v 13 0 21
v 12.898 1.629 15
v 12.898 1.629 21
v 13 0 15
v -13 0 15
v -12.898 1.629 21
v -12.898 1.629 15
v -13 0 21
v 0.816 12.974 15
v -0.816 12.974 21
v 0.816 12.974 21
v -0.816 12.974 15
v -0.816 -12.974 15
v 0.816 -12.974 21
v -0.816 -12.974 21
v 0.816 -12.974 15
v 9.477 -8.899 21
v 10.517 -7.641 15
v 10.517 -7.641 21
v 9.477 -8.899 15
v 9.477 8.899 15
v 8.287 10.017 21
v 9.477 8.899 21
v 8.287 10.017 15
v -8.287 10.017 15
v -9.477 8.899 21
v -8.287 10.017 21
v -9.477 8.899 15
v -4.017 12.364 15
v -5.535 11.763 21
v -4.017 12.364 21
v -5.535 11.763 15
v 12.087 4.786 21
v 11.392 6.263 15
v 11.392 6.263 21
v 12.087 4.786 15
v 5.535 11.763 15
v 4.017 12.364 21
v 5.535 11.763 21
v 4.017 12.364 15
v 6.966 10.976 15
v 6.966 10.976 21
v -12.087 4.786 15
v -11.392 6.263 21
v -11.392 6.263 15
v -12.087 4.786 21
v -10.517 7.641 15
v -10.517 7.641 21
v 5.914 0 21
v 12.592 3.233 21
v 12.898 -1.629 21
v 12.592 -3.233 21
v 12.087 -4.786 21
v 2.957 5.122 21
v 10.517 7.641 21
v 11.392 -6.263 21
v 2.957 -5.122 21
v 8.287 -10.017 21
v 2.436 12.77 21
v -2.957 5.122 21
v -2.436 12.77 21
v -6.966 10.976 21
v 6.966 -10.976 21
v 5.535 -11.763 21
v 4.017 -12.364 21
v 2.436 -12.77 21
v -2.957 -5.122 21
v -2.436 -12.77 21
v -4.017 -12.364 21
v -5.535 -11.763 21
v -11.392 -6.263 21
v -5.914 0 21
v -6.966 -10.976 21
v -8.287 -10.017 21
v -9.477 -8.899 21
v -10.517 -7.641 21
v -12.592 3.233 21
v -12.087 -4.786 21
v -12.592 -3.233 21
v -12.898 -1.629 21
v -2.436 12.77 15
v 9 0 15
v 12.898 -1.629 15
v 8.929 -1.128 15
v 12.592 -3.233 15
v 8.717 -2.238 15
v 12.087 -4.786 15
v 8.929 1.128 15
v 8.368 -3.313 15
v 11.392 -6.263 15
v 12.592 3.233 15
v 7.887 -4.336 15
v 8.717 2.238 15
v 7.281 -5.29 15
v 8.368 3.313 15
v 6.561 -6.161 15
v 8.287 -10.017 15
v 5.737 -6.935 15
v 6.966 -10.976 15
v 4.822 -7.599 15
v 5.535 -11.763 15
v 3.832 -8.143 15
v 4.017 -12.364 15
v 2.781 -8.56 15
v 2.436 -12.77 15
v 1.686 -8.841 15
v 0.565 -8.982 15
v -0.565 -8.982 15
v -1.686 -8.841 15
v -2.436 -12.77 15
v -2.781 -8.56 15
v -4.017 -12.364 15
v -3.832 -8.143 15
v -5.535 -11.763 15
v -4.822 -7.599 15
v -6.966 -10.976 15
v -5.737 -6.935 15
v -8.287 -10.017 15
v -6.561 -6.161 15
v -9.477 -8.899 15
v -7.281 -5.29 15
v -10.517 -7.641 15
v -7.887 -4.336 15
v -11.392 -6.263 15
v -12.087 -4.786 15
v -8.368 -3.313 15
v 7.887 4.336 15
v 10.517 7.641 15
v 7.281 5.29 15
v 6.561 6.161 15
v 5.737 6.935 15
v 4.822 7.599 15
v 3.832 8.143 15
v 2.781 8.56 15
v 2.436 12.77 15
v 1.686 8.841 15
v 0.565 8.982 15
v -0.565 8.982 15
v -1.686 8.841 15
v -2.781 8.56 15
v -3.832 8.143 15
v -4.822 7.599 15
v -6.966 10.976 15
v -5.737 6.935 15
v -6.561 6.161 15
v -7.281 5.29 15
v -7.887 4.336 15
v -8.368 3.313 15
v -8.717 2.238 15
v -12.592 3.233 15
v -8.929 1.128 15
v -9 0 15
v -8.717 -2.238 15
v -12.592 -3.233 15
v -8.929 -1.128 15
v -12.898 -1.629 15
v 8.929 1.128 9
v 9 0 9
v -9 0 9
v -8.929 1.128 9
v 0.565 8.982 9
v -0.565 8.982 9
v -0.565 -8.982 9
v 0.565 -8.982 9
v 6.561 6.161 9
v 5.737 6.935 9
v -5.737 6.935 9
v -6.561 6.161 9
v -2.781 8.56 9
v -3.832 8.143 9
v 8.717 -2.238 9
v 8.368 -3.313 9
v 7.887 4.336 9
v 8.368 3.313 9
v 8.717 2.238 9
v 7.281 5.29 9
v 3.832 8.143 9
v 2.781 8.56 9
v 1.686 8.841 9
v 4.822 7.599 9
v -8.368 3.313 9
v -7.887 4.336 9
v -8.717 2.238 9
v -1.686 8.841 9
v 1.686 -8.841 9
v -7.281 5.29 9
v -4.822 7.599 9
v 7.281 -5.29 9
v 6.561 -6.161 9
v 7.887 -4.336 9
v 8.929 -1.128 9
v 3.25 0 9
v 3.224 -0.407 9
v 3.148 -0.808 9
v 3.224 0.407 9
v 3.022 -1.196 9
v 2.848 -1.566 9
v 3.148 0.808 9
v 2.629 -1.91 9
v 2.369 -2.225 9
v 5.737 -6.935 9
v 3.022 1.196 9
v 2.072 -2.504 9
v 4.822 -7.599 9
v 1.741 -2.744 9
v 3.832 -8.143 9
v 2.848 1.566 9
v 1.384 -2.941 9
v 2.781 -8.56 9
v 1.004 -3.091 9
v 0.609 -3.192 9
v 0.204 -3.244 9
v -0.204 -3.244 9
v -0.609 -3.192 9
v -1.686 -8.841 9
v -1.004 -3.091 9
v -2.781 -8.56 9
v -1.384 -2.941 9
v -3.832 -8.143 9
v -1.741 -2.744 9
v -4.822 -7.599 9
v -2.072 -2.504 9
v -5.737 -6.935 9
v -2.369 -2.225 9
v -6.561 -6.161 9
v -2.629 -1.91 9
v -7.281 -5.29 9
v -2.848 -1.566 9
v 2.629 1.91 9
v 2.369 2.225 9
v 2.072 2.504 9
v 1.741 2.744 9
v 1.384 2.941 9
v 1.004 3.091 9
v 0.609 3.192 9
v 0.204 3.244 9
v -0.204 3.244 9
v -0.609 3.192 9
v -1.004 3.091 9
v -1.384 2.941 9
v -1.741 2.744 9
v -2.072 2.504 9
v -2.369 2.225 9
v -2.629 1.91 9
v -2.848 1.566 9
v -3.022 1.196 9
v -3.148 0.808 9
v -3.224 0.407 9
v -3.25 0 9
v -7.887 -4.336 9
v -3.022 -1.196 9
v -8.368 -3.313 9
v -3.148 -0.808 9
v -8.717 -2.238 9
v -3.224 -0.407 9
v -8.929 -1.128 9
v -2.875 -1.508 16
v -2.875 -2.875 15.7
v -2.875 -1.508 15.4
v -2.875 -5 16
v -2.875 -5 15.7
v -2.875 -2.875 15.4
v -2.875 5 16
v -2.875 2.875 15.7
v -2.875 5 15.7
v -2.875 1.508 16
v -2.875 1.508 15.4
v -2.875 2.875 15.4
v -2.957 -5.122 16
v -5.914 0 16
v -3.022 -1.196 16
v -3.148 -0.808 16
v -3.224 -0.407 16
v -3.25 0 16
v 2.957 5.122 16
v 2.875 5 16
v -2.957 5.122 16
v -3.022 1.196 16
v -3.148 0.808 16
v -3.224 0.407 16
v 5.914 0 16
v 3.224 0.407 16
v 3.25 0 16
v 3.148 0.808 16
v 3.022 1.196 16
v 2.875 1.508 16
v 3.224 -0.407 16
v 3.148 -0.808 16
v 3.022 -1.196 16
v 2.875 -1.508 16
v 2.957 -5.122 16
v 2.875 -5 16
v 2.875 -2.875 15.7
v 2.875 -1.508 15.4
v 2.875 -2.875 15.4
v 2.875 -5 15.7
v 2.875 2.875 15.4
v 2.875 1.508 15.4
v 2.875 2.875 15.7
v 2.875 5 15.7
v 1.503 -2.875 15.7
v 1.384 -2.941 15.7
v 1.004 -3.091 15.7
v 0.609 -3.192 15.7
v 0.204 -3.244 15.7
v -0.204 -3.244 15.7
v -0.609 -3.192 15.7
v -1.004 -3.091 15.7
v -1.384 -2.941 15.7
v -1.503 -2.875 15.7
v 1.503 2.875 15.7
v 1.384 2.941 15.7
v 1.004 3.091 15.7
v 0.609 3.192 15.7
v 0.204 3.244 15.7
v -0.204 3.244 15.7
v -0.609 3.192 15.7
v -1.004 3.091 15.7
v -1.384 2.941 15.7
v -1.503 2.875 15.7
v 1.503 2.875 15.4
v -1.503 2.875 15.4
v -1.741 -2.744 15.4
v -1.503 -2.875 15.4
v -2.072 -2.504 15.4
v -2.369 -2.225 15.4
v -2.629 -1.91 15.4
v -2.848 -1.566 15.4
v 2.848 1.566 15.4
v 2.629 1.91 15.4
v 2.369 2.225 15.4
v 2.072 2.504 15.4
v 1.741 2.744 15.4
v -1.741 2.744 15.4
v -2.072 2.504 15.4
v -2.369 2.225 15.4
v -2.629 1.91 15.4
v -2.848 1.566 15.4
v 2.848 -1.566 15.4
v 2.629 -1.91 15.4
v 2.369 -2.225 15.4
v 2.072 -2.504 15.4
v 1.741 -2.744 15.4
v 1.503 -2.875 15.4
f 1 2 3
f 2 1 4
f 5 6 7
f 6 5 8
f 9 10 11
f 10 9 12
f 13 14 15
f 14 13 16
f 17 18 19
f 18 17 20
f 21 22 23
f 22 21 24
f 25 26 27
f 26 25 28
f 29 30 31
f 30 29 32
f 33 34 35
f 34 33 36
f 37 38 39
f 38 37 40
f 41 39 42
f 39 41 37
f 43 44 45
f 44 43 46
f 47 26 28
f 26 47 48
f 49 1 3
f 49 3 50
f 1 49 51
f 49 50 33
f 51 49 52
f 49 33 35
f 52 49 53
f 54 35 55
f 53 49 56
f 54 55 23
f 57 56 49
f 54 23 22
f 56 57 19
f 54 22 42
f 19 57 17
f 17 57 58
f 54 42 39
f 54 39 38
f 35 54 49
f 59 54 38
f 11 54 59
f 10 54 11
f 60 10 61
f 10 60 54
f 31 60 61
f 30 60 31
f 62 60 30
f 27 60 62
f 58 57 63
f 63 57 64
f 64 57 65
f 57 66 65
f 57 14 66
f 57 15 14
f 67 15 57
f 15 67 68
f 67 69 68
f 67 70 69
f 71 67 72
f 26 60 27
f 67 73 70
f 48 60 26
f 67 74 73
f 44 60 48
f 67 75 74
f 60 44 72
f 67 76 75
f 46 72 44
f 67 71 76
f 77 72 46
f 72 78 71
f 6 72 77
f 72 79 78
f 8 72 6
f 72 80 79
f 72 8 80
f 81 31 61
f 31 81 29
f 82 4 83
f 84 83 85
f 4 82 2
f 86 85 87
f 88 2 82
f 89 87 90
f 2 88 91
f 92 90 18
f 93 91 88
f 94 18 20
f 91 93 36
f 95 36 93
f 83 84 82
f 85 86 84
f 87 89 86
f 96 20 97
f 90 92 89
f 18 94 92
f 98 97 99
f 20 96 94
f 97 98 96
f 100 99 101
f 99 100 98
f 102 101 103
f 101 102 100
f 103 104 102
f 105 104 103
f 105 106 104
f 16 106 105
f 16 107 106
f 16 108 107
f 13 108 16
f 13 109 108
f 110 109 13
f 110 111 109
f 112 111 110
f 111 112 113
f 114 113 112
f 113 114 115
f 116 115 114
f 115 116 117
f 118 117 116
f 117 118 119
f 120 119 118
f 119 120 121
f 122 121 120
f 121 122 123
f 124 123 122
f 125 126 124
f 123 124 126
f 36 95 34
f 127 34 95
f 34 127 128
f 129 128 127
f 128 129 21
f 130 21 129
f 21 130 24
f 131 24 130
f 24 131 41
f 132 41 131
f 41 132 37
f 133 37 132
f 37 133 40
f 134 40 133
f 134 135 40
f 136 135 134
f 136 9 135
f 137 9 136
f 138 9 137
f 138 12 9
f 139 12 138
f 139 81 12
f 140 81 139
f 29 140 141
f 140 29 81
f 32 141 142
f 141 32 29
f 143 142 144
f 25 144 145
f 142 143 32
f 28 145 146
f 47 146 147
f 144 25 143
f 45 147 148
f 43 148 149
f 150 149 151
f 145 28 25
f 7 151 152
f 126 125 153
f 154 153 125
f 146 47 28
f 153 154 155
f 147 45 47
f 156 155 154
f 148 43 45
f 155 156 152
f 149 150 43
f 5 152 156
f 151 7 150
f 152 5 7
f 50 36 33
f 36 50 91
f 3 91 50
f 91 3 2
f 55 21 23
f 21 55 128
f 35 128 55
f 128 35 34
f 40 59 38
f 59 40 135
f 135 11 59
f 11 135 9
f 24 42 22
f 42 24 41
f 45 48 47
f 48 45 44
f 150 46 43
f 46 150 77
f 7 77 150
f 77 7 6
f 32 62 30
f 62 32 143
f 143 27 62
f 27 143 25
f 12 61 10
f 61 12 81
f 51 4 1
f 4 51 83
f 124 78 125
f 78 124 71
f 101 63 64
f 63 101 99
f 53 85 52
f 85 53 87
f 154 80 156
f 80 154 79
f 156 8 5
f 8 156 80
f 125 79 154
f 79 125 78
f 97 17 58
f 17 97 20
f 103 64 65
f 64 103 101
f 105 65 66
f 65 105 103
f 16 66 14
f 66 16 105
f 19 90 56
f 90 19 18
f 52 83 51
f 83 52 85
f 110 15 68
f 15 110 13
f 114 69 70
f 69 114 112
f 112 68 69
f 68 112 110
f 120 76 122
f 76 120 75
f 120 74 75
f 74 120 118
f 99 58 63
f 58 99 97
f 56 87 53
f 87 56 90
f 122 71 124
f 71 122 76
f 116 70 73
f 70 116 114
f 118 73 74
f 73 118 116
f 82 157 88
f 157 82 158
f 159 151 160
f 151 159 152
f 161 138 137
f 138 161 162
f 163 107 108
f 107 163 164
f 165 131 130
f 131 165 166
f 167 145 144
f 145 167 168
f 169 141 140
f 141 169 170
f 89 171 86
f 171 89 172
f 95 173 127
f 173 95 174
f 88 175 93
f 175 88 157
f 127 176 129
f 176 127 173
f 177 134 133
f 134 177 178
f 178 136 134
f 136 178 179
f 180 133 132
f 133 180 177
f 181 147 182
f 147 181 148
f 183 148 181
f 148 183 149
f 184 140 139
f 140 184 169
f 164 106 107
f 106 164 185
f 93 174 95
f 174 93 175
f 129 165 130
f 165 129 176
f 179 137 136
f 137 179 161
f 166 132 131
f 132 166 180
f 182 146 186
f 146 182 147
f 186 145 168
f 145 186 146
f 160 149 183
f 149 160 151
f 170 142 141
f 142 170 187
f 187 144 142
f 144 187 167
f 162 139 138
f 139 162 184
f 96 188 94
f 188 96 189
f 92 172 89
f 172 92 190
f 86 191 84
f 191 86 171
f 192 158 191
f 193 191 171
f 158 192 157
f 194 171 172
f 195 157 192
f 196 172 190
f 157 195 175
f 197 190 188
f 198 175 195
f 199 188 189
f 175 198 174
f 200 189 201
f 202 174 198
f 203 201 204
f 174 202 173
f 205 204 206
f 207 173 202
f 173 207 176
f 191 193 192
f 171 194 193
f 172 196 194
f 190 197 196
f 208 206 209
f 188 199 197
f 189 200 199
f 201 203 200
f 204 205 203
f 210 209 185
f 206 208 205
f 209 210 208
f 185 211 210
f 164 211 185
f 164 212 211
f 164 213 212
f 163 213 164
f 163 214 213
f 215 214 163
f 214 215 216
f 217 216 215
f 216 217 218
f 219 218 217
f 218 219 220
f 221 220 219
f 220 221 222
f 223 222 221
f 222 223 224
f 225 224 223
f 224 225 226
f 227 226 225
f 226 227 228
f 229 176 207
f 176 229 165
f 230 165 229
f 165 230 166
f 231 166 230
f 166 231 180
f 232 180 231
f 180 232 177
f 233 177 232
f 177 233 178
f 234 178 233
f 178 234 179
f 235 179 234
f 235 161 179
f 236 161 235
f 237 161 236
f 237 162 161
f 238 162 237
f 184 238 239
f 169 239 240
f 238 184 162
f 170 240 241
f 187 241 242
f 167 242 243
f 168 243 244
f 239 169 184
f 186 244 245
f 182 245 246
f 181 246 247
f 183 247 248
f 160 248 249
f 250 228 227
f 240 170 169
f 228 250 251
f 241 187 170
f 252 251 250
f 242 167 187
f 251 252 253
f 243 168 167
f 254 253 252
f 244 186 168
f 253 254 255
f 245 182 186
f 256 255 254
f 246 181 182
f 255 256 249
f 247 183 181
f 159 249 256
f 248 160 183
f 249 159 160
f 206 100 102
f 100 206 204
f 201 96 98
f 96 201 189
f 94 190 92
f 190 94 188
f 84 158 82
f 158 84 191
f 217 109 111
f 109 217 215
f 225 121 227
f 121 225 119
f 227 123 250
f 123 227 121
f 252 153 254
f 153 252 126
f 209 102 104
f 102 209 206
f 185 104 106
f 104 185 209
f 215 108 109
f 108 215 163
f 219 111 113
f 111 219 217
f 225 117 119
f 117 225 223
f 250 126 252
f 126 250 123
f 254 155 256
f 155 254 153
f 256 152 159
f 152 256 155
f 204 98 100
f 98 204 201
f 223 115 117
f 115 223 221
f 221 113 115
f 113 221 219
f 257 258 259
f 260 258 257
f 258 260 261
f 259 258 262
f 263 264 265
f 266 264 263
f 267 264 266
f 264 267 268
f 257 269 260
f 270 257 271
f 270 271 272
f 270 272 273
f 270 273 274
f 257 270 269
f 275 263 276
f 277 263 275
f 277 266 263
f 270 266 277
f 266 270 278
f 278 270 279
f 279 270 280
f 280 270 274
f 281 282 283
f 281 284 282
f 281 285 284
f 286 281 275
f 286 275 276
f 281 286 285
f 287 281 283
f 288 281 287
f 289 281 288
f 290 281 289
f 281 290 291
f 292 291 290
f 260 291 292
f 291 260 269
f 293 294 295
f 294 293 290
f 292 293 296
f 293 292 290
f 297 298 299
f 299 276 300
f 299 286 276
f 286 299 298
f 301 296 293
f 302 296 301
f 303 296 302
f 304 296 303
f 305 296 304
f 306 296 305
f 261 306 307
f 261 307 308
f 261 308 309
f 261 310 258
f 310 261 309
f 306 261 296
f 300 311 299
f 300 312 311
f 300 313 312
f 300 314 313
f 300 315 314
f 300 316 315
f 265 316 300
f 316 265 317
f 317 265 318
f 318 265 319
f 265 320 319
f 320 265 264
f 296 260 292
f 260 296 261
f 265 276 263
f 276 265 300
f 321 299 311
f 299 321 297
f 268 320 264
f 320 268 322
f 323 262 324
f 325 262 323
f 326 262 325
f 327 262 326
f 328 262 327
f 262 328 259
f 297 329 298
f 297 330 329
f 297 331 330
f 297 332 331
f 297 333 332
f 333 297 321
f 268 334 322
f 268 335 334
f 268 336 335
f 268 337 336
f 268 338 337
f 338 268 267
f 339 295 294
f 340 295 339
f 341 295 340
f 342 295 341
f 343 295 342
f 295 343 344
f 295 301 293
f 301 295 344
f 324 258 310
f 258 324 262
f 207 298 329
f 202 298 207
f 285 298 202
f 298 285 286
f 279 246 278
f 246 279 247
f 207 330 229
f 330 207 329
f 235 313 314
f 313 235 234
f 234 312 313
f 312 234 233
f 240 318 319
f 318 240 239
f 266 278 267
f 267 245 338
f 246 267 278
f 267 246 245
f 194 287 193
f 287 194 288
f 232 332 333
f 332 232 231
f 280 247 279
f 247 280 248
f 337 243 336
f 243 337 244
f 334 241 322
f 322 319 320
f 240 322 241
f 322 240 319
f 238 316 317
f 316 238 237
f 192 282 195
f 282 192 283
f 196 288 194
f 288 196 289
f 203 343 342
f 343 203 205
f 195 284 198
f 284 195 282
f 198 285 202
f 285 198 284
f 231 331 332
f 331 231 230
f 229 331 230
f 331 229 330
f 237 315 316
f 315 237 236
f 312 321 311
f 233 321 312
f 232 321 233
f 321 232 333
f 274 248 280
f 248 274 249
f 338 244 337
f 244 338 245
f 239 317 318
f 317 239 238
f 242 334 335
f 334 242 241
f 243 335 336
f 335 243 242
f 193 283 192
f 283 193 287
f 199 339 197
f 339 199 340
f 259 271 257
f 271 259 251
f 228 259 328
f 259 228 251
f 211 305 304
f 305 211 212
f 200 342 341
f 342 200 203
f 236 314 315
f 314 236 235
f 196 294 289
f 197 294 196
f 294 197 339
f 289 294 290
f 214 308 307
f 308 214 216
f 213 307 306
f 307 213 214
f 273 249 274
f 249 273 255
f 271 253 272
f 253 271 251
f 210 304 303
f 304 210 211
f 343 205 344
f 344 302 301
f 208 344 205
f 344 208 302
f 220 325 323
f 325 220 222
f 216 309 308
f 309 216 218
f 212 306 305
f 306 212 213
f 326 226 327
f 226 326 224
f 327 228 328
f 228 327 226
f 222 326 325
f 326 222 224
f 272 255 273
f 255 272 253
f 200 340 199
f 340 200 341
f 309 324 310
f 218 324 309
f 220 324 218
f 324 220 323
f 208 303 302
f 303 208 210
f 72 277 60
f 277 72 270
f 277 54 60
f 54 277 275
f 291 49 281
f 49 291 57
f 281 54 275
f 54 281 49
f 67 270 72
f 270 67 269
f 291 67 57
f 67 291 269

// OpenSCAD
$fn = 50;


difference() {
	union() {
		translate(v = [0, 0, 15.0000000000]) {
			cylinder(h = 6, r = 13.0000000000);
		}
		translate(v = [0, 0, 9.0000000000]) {
			cylinder(h = 12, r = 9.0000000000);
		}
	}
	union() {
		translate(v = [0, 0, 21]) {
			rotate(a = [0, 0, 0]) {
				difference() {
					union() {
						#translate(v = [-2.8750000000, -5.0000000000, -5.3000000000]) {
							cube(size = [5.7500000000, 10, 0.3000000000]);
						}
						#translate(v = [-2.8750000000, -2.8750000000, -5.6000000000]) {
							cube(size = [5.7500000000, 5.7500000000, 0.3000000000]);
						}
						#translate(v = [-2.8750000000, -5.0000000000, 0]) {
							cube(size = [5.7500000000, 10, 0.3000000000]);
						}
						#translate(v = [-2.8750000000, -2.8750000000, 0.3000000000]) {
							cube(size = [5.7500000000, 5.7500000000, 0.3000000000]);
						}
						#translate(v = [0, 0, -100.0000000000]) {
							cylinder(h = 200, r = 3.2500000000);
						}
						translate(v = [0, 0, -5]) {
							#linear_extrude(height = 5) {
								polygon(points = [[5.9142500000, 0.0000000000], [2.9571250000, 5.1218907443], [-2.9571250000, 5.1218907443], [-5.9142500000, 0.0000000000], [-2.9571250000, -5.1218907443], [2.9571250000, -5.1218907443]]);
							}
						}
						#translate(v = [-2.8750000000, -5.0000000000, -5.3000000000]) {
							cube(size = [5.7500000000, 10, 0.3000000000]);
						}
						#translate(v = [-2.8750000000, -2.8750000000, -5.6000000000]) {
							cube(size = [5.7500000000, 5.7500000000, 0.3000000000]);
						}
						#translate(v = [-2.8750000000, -5.0000000000, 0]) {
							cube(size = [5.7500000000, 10, 0.3000000000]);
						}
						#translate(v = [-2.8750000000, -2.8750000000, 0.3000000000]) {
							cube(size = [5.7500000000, 5.7500000000, 0.3000000000]);
						}
						#translate(v = [0, 0, -100.0000000000]) {
							cylinder(h = 200, r = 3.2500000000);
						}
						#translate(v = [-2.8750000000, -5.0000000000, -5.3000000000]) {
							cube(size = [5.7500000000, 10, 0.3000000000]);
						}
						#translate(v = [-2.8750000000, -2.8750000000, -5.6000000000]) {
							cube(size = [5.7500000000, 5.7500000000, 0.3000000000]);
						}
						#translate(v = [-2.8750000000, -5.0000000000, 0]) {
							cube(size = [5.7500000000, 10, 0.3000000000]);
						}
						#translate(v = [-2.8750000000, -2.8750000000, 0.3000000000]) {
							cube(size = [5.7500000000, 5.7500000000, 0.3000000000]);
						}
						#translate(v = [0, 0, -100.0000000000]) {
							cylinder(h = 200, r = 3.2500000000);
						}
					}
					union();
				}
			}
		}
		#translate(v = [0, 0, -100.0000000000]) {
			cylinder(h = 200, r = 3.2500000000);
		}
	}
}
